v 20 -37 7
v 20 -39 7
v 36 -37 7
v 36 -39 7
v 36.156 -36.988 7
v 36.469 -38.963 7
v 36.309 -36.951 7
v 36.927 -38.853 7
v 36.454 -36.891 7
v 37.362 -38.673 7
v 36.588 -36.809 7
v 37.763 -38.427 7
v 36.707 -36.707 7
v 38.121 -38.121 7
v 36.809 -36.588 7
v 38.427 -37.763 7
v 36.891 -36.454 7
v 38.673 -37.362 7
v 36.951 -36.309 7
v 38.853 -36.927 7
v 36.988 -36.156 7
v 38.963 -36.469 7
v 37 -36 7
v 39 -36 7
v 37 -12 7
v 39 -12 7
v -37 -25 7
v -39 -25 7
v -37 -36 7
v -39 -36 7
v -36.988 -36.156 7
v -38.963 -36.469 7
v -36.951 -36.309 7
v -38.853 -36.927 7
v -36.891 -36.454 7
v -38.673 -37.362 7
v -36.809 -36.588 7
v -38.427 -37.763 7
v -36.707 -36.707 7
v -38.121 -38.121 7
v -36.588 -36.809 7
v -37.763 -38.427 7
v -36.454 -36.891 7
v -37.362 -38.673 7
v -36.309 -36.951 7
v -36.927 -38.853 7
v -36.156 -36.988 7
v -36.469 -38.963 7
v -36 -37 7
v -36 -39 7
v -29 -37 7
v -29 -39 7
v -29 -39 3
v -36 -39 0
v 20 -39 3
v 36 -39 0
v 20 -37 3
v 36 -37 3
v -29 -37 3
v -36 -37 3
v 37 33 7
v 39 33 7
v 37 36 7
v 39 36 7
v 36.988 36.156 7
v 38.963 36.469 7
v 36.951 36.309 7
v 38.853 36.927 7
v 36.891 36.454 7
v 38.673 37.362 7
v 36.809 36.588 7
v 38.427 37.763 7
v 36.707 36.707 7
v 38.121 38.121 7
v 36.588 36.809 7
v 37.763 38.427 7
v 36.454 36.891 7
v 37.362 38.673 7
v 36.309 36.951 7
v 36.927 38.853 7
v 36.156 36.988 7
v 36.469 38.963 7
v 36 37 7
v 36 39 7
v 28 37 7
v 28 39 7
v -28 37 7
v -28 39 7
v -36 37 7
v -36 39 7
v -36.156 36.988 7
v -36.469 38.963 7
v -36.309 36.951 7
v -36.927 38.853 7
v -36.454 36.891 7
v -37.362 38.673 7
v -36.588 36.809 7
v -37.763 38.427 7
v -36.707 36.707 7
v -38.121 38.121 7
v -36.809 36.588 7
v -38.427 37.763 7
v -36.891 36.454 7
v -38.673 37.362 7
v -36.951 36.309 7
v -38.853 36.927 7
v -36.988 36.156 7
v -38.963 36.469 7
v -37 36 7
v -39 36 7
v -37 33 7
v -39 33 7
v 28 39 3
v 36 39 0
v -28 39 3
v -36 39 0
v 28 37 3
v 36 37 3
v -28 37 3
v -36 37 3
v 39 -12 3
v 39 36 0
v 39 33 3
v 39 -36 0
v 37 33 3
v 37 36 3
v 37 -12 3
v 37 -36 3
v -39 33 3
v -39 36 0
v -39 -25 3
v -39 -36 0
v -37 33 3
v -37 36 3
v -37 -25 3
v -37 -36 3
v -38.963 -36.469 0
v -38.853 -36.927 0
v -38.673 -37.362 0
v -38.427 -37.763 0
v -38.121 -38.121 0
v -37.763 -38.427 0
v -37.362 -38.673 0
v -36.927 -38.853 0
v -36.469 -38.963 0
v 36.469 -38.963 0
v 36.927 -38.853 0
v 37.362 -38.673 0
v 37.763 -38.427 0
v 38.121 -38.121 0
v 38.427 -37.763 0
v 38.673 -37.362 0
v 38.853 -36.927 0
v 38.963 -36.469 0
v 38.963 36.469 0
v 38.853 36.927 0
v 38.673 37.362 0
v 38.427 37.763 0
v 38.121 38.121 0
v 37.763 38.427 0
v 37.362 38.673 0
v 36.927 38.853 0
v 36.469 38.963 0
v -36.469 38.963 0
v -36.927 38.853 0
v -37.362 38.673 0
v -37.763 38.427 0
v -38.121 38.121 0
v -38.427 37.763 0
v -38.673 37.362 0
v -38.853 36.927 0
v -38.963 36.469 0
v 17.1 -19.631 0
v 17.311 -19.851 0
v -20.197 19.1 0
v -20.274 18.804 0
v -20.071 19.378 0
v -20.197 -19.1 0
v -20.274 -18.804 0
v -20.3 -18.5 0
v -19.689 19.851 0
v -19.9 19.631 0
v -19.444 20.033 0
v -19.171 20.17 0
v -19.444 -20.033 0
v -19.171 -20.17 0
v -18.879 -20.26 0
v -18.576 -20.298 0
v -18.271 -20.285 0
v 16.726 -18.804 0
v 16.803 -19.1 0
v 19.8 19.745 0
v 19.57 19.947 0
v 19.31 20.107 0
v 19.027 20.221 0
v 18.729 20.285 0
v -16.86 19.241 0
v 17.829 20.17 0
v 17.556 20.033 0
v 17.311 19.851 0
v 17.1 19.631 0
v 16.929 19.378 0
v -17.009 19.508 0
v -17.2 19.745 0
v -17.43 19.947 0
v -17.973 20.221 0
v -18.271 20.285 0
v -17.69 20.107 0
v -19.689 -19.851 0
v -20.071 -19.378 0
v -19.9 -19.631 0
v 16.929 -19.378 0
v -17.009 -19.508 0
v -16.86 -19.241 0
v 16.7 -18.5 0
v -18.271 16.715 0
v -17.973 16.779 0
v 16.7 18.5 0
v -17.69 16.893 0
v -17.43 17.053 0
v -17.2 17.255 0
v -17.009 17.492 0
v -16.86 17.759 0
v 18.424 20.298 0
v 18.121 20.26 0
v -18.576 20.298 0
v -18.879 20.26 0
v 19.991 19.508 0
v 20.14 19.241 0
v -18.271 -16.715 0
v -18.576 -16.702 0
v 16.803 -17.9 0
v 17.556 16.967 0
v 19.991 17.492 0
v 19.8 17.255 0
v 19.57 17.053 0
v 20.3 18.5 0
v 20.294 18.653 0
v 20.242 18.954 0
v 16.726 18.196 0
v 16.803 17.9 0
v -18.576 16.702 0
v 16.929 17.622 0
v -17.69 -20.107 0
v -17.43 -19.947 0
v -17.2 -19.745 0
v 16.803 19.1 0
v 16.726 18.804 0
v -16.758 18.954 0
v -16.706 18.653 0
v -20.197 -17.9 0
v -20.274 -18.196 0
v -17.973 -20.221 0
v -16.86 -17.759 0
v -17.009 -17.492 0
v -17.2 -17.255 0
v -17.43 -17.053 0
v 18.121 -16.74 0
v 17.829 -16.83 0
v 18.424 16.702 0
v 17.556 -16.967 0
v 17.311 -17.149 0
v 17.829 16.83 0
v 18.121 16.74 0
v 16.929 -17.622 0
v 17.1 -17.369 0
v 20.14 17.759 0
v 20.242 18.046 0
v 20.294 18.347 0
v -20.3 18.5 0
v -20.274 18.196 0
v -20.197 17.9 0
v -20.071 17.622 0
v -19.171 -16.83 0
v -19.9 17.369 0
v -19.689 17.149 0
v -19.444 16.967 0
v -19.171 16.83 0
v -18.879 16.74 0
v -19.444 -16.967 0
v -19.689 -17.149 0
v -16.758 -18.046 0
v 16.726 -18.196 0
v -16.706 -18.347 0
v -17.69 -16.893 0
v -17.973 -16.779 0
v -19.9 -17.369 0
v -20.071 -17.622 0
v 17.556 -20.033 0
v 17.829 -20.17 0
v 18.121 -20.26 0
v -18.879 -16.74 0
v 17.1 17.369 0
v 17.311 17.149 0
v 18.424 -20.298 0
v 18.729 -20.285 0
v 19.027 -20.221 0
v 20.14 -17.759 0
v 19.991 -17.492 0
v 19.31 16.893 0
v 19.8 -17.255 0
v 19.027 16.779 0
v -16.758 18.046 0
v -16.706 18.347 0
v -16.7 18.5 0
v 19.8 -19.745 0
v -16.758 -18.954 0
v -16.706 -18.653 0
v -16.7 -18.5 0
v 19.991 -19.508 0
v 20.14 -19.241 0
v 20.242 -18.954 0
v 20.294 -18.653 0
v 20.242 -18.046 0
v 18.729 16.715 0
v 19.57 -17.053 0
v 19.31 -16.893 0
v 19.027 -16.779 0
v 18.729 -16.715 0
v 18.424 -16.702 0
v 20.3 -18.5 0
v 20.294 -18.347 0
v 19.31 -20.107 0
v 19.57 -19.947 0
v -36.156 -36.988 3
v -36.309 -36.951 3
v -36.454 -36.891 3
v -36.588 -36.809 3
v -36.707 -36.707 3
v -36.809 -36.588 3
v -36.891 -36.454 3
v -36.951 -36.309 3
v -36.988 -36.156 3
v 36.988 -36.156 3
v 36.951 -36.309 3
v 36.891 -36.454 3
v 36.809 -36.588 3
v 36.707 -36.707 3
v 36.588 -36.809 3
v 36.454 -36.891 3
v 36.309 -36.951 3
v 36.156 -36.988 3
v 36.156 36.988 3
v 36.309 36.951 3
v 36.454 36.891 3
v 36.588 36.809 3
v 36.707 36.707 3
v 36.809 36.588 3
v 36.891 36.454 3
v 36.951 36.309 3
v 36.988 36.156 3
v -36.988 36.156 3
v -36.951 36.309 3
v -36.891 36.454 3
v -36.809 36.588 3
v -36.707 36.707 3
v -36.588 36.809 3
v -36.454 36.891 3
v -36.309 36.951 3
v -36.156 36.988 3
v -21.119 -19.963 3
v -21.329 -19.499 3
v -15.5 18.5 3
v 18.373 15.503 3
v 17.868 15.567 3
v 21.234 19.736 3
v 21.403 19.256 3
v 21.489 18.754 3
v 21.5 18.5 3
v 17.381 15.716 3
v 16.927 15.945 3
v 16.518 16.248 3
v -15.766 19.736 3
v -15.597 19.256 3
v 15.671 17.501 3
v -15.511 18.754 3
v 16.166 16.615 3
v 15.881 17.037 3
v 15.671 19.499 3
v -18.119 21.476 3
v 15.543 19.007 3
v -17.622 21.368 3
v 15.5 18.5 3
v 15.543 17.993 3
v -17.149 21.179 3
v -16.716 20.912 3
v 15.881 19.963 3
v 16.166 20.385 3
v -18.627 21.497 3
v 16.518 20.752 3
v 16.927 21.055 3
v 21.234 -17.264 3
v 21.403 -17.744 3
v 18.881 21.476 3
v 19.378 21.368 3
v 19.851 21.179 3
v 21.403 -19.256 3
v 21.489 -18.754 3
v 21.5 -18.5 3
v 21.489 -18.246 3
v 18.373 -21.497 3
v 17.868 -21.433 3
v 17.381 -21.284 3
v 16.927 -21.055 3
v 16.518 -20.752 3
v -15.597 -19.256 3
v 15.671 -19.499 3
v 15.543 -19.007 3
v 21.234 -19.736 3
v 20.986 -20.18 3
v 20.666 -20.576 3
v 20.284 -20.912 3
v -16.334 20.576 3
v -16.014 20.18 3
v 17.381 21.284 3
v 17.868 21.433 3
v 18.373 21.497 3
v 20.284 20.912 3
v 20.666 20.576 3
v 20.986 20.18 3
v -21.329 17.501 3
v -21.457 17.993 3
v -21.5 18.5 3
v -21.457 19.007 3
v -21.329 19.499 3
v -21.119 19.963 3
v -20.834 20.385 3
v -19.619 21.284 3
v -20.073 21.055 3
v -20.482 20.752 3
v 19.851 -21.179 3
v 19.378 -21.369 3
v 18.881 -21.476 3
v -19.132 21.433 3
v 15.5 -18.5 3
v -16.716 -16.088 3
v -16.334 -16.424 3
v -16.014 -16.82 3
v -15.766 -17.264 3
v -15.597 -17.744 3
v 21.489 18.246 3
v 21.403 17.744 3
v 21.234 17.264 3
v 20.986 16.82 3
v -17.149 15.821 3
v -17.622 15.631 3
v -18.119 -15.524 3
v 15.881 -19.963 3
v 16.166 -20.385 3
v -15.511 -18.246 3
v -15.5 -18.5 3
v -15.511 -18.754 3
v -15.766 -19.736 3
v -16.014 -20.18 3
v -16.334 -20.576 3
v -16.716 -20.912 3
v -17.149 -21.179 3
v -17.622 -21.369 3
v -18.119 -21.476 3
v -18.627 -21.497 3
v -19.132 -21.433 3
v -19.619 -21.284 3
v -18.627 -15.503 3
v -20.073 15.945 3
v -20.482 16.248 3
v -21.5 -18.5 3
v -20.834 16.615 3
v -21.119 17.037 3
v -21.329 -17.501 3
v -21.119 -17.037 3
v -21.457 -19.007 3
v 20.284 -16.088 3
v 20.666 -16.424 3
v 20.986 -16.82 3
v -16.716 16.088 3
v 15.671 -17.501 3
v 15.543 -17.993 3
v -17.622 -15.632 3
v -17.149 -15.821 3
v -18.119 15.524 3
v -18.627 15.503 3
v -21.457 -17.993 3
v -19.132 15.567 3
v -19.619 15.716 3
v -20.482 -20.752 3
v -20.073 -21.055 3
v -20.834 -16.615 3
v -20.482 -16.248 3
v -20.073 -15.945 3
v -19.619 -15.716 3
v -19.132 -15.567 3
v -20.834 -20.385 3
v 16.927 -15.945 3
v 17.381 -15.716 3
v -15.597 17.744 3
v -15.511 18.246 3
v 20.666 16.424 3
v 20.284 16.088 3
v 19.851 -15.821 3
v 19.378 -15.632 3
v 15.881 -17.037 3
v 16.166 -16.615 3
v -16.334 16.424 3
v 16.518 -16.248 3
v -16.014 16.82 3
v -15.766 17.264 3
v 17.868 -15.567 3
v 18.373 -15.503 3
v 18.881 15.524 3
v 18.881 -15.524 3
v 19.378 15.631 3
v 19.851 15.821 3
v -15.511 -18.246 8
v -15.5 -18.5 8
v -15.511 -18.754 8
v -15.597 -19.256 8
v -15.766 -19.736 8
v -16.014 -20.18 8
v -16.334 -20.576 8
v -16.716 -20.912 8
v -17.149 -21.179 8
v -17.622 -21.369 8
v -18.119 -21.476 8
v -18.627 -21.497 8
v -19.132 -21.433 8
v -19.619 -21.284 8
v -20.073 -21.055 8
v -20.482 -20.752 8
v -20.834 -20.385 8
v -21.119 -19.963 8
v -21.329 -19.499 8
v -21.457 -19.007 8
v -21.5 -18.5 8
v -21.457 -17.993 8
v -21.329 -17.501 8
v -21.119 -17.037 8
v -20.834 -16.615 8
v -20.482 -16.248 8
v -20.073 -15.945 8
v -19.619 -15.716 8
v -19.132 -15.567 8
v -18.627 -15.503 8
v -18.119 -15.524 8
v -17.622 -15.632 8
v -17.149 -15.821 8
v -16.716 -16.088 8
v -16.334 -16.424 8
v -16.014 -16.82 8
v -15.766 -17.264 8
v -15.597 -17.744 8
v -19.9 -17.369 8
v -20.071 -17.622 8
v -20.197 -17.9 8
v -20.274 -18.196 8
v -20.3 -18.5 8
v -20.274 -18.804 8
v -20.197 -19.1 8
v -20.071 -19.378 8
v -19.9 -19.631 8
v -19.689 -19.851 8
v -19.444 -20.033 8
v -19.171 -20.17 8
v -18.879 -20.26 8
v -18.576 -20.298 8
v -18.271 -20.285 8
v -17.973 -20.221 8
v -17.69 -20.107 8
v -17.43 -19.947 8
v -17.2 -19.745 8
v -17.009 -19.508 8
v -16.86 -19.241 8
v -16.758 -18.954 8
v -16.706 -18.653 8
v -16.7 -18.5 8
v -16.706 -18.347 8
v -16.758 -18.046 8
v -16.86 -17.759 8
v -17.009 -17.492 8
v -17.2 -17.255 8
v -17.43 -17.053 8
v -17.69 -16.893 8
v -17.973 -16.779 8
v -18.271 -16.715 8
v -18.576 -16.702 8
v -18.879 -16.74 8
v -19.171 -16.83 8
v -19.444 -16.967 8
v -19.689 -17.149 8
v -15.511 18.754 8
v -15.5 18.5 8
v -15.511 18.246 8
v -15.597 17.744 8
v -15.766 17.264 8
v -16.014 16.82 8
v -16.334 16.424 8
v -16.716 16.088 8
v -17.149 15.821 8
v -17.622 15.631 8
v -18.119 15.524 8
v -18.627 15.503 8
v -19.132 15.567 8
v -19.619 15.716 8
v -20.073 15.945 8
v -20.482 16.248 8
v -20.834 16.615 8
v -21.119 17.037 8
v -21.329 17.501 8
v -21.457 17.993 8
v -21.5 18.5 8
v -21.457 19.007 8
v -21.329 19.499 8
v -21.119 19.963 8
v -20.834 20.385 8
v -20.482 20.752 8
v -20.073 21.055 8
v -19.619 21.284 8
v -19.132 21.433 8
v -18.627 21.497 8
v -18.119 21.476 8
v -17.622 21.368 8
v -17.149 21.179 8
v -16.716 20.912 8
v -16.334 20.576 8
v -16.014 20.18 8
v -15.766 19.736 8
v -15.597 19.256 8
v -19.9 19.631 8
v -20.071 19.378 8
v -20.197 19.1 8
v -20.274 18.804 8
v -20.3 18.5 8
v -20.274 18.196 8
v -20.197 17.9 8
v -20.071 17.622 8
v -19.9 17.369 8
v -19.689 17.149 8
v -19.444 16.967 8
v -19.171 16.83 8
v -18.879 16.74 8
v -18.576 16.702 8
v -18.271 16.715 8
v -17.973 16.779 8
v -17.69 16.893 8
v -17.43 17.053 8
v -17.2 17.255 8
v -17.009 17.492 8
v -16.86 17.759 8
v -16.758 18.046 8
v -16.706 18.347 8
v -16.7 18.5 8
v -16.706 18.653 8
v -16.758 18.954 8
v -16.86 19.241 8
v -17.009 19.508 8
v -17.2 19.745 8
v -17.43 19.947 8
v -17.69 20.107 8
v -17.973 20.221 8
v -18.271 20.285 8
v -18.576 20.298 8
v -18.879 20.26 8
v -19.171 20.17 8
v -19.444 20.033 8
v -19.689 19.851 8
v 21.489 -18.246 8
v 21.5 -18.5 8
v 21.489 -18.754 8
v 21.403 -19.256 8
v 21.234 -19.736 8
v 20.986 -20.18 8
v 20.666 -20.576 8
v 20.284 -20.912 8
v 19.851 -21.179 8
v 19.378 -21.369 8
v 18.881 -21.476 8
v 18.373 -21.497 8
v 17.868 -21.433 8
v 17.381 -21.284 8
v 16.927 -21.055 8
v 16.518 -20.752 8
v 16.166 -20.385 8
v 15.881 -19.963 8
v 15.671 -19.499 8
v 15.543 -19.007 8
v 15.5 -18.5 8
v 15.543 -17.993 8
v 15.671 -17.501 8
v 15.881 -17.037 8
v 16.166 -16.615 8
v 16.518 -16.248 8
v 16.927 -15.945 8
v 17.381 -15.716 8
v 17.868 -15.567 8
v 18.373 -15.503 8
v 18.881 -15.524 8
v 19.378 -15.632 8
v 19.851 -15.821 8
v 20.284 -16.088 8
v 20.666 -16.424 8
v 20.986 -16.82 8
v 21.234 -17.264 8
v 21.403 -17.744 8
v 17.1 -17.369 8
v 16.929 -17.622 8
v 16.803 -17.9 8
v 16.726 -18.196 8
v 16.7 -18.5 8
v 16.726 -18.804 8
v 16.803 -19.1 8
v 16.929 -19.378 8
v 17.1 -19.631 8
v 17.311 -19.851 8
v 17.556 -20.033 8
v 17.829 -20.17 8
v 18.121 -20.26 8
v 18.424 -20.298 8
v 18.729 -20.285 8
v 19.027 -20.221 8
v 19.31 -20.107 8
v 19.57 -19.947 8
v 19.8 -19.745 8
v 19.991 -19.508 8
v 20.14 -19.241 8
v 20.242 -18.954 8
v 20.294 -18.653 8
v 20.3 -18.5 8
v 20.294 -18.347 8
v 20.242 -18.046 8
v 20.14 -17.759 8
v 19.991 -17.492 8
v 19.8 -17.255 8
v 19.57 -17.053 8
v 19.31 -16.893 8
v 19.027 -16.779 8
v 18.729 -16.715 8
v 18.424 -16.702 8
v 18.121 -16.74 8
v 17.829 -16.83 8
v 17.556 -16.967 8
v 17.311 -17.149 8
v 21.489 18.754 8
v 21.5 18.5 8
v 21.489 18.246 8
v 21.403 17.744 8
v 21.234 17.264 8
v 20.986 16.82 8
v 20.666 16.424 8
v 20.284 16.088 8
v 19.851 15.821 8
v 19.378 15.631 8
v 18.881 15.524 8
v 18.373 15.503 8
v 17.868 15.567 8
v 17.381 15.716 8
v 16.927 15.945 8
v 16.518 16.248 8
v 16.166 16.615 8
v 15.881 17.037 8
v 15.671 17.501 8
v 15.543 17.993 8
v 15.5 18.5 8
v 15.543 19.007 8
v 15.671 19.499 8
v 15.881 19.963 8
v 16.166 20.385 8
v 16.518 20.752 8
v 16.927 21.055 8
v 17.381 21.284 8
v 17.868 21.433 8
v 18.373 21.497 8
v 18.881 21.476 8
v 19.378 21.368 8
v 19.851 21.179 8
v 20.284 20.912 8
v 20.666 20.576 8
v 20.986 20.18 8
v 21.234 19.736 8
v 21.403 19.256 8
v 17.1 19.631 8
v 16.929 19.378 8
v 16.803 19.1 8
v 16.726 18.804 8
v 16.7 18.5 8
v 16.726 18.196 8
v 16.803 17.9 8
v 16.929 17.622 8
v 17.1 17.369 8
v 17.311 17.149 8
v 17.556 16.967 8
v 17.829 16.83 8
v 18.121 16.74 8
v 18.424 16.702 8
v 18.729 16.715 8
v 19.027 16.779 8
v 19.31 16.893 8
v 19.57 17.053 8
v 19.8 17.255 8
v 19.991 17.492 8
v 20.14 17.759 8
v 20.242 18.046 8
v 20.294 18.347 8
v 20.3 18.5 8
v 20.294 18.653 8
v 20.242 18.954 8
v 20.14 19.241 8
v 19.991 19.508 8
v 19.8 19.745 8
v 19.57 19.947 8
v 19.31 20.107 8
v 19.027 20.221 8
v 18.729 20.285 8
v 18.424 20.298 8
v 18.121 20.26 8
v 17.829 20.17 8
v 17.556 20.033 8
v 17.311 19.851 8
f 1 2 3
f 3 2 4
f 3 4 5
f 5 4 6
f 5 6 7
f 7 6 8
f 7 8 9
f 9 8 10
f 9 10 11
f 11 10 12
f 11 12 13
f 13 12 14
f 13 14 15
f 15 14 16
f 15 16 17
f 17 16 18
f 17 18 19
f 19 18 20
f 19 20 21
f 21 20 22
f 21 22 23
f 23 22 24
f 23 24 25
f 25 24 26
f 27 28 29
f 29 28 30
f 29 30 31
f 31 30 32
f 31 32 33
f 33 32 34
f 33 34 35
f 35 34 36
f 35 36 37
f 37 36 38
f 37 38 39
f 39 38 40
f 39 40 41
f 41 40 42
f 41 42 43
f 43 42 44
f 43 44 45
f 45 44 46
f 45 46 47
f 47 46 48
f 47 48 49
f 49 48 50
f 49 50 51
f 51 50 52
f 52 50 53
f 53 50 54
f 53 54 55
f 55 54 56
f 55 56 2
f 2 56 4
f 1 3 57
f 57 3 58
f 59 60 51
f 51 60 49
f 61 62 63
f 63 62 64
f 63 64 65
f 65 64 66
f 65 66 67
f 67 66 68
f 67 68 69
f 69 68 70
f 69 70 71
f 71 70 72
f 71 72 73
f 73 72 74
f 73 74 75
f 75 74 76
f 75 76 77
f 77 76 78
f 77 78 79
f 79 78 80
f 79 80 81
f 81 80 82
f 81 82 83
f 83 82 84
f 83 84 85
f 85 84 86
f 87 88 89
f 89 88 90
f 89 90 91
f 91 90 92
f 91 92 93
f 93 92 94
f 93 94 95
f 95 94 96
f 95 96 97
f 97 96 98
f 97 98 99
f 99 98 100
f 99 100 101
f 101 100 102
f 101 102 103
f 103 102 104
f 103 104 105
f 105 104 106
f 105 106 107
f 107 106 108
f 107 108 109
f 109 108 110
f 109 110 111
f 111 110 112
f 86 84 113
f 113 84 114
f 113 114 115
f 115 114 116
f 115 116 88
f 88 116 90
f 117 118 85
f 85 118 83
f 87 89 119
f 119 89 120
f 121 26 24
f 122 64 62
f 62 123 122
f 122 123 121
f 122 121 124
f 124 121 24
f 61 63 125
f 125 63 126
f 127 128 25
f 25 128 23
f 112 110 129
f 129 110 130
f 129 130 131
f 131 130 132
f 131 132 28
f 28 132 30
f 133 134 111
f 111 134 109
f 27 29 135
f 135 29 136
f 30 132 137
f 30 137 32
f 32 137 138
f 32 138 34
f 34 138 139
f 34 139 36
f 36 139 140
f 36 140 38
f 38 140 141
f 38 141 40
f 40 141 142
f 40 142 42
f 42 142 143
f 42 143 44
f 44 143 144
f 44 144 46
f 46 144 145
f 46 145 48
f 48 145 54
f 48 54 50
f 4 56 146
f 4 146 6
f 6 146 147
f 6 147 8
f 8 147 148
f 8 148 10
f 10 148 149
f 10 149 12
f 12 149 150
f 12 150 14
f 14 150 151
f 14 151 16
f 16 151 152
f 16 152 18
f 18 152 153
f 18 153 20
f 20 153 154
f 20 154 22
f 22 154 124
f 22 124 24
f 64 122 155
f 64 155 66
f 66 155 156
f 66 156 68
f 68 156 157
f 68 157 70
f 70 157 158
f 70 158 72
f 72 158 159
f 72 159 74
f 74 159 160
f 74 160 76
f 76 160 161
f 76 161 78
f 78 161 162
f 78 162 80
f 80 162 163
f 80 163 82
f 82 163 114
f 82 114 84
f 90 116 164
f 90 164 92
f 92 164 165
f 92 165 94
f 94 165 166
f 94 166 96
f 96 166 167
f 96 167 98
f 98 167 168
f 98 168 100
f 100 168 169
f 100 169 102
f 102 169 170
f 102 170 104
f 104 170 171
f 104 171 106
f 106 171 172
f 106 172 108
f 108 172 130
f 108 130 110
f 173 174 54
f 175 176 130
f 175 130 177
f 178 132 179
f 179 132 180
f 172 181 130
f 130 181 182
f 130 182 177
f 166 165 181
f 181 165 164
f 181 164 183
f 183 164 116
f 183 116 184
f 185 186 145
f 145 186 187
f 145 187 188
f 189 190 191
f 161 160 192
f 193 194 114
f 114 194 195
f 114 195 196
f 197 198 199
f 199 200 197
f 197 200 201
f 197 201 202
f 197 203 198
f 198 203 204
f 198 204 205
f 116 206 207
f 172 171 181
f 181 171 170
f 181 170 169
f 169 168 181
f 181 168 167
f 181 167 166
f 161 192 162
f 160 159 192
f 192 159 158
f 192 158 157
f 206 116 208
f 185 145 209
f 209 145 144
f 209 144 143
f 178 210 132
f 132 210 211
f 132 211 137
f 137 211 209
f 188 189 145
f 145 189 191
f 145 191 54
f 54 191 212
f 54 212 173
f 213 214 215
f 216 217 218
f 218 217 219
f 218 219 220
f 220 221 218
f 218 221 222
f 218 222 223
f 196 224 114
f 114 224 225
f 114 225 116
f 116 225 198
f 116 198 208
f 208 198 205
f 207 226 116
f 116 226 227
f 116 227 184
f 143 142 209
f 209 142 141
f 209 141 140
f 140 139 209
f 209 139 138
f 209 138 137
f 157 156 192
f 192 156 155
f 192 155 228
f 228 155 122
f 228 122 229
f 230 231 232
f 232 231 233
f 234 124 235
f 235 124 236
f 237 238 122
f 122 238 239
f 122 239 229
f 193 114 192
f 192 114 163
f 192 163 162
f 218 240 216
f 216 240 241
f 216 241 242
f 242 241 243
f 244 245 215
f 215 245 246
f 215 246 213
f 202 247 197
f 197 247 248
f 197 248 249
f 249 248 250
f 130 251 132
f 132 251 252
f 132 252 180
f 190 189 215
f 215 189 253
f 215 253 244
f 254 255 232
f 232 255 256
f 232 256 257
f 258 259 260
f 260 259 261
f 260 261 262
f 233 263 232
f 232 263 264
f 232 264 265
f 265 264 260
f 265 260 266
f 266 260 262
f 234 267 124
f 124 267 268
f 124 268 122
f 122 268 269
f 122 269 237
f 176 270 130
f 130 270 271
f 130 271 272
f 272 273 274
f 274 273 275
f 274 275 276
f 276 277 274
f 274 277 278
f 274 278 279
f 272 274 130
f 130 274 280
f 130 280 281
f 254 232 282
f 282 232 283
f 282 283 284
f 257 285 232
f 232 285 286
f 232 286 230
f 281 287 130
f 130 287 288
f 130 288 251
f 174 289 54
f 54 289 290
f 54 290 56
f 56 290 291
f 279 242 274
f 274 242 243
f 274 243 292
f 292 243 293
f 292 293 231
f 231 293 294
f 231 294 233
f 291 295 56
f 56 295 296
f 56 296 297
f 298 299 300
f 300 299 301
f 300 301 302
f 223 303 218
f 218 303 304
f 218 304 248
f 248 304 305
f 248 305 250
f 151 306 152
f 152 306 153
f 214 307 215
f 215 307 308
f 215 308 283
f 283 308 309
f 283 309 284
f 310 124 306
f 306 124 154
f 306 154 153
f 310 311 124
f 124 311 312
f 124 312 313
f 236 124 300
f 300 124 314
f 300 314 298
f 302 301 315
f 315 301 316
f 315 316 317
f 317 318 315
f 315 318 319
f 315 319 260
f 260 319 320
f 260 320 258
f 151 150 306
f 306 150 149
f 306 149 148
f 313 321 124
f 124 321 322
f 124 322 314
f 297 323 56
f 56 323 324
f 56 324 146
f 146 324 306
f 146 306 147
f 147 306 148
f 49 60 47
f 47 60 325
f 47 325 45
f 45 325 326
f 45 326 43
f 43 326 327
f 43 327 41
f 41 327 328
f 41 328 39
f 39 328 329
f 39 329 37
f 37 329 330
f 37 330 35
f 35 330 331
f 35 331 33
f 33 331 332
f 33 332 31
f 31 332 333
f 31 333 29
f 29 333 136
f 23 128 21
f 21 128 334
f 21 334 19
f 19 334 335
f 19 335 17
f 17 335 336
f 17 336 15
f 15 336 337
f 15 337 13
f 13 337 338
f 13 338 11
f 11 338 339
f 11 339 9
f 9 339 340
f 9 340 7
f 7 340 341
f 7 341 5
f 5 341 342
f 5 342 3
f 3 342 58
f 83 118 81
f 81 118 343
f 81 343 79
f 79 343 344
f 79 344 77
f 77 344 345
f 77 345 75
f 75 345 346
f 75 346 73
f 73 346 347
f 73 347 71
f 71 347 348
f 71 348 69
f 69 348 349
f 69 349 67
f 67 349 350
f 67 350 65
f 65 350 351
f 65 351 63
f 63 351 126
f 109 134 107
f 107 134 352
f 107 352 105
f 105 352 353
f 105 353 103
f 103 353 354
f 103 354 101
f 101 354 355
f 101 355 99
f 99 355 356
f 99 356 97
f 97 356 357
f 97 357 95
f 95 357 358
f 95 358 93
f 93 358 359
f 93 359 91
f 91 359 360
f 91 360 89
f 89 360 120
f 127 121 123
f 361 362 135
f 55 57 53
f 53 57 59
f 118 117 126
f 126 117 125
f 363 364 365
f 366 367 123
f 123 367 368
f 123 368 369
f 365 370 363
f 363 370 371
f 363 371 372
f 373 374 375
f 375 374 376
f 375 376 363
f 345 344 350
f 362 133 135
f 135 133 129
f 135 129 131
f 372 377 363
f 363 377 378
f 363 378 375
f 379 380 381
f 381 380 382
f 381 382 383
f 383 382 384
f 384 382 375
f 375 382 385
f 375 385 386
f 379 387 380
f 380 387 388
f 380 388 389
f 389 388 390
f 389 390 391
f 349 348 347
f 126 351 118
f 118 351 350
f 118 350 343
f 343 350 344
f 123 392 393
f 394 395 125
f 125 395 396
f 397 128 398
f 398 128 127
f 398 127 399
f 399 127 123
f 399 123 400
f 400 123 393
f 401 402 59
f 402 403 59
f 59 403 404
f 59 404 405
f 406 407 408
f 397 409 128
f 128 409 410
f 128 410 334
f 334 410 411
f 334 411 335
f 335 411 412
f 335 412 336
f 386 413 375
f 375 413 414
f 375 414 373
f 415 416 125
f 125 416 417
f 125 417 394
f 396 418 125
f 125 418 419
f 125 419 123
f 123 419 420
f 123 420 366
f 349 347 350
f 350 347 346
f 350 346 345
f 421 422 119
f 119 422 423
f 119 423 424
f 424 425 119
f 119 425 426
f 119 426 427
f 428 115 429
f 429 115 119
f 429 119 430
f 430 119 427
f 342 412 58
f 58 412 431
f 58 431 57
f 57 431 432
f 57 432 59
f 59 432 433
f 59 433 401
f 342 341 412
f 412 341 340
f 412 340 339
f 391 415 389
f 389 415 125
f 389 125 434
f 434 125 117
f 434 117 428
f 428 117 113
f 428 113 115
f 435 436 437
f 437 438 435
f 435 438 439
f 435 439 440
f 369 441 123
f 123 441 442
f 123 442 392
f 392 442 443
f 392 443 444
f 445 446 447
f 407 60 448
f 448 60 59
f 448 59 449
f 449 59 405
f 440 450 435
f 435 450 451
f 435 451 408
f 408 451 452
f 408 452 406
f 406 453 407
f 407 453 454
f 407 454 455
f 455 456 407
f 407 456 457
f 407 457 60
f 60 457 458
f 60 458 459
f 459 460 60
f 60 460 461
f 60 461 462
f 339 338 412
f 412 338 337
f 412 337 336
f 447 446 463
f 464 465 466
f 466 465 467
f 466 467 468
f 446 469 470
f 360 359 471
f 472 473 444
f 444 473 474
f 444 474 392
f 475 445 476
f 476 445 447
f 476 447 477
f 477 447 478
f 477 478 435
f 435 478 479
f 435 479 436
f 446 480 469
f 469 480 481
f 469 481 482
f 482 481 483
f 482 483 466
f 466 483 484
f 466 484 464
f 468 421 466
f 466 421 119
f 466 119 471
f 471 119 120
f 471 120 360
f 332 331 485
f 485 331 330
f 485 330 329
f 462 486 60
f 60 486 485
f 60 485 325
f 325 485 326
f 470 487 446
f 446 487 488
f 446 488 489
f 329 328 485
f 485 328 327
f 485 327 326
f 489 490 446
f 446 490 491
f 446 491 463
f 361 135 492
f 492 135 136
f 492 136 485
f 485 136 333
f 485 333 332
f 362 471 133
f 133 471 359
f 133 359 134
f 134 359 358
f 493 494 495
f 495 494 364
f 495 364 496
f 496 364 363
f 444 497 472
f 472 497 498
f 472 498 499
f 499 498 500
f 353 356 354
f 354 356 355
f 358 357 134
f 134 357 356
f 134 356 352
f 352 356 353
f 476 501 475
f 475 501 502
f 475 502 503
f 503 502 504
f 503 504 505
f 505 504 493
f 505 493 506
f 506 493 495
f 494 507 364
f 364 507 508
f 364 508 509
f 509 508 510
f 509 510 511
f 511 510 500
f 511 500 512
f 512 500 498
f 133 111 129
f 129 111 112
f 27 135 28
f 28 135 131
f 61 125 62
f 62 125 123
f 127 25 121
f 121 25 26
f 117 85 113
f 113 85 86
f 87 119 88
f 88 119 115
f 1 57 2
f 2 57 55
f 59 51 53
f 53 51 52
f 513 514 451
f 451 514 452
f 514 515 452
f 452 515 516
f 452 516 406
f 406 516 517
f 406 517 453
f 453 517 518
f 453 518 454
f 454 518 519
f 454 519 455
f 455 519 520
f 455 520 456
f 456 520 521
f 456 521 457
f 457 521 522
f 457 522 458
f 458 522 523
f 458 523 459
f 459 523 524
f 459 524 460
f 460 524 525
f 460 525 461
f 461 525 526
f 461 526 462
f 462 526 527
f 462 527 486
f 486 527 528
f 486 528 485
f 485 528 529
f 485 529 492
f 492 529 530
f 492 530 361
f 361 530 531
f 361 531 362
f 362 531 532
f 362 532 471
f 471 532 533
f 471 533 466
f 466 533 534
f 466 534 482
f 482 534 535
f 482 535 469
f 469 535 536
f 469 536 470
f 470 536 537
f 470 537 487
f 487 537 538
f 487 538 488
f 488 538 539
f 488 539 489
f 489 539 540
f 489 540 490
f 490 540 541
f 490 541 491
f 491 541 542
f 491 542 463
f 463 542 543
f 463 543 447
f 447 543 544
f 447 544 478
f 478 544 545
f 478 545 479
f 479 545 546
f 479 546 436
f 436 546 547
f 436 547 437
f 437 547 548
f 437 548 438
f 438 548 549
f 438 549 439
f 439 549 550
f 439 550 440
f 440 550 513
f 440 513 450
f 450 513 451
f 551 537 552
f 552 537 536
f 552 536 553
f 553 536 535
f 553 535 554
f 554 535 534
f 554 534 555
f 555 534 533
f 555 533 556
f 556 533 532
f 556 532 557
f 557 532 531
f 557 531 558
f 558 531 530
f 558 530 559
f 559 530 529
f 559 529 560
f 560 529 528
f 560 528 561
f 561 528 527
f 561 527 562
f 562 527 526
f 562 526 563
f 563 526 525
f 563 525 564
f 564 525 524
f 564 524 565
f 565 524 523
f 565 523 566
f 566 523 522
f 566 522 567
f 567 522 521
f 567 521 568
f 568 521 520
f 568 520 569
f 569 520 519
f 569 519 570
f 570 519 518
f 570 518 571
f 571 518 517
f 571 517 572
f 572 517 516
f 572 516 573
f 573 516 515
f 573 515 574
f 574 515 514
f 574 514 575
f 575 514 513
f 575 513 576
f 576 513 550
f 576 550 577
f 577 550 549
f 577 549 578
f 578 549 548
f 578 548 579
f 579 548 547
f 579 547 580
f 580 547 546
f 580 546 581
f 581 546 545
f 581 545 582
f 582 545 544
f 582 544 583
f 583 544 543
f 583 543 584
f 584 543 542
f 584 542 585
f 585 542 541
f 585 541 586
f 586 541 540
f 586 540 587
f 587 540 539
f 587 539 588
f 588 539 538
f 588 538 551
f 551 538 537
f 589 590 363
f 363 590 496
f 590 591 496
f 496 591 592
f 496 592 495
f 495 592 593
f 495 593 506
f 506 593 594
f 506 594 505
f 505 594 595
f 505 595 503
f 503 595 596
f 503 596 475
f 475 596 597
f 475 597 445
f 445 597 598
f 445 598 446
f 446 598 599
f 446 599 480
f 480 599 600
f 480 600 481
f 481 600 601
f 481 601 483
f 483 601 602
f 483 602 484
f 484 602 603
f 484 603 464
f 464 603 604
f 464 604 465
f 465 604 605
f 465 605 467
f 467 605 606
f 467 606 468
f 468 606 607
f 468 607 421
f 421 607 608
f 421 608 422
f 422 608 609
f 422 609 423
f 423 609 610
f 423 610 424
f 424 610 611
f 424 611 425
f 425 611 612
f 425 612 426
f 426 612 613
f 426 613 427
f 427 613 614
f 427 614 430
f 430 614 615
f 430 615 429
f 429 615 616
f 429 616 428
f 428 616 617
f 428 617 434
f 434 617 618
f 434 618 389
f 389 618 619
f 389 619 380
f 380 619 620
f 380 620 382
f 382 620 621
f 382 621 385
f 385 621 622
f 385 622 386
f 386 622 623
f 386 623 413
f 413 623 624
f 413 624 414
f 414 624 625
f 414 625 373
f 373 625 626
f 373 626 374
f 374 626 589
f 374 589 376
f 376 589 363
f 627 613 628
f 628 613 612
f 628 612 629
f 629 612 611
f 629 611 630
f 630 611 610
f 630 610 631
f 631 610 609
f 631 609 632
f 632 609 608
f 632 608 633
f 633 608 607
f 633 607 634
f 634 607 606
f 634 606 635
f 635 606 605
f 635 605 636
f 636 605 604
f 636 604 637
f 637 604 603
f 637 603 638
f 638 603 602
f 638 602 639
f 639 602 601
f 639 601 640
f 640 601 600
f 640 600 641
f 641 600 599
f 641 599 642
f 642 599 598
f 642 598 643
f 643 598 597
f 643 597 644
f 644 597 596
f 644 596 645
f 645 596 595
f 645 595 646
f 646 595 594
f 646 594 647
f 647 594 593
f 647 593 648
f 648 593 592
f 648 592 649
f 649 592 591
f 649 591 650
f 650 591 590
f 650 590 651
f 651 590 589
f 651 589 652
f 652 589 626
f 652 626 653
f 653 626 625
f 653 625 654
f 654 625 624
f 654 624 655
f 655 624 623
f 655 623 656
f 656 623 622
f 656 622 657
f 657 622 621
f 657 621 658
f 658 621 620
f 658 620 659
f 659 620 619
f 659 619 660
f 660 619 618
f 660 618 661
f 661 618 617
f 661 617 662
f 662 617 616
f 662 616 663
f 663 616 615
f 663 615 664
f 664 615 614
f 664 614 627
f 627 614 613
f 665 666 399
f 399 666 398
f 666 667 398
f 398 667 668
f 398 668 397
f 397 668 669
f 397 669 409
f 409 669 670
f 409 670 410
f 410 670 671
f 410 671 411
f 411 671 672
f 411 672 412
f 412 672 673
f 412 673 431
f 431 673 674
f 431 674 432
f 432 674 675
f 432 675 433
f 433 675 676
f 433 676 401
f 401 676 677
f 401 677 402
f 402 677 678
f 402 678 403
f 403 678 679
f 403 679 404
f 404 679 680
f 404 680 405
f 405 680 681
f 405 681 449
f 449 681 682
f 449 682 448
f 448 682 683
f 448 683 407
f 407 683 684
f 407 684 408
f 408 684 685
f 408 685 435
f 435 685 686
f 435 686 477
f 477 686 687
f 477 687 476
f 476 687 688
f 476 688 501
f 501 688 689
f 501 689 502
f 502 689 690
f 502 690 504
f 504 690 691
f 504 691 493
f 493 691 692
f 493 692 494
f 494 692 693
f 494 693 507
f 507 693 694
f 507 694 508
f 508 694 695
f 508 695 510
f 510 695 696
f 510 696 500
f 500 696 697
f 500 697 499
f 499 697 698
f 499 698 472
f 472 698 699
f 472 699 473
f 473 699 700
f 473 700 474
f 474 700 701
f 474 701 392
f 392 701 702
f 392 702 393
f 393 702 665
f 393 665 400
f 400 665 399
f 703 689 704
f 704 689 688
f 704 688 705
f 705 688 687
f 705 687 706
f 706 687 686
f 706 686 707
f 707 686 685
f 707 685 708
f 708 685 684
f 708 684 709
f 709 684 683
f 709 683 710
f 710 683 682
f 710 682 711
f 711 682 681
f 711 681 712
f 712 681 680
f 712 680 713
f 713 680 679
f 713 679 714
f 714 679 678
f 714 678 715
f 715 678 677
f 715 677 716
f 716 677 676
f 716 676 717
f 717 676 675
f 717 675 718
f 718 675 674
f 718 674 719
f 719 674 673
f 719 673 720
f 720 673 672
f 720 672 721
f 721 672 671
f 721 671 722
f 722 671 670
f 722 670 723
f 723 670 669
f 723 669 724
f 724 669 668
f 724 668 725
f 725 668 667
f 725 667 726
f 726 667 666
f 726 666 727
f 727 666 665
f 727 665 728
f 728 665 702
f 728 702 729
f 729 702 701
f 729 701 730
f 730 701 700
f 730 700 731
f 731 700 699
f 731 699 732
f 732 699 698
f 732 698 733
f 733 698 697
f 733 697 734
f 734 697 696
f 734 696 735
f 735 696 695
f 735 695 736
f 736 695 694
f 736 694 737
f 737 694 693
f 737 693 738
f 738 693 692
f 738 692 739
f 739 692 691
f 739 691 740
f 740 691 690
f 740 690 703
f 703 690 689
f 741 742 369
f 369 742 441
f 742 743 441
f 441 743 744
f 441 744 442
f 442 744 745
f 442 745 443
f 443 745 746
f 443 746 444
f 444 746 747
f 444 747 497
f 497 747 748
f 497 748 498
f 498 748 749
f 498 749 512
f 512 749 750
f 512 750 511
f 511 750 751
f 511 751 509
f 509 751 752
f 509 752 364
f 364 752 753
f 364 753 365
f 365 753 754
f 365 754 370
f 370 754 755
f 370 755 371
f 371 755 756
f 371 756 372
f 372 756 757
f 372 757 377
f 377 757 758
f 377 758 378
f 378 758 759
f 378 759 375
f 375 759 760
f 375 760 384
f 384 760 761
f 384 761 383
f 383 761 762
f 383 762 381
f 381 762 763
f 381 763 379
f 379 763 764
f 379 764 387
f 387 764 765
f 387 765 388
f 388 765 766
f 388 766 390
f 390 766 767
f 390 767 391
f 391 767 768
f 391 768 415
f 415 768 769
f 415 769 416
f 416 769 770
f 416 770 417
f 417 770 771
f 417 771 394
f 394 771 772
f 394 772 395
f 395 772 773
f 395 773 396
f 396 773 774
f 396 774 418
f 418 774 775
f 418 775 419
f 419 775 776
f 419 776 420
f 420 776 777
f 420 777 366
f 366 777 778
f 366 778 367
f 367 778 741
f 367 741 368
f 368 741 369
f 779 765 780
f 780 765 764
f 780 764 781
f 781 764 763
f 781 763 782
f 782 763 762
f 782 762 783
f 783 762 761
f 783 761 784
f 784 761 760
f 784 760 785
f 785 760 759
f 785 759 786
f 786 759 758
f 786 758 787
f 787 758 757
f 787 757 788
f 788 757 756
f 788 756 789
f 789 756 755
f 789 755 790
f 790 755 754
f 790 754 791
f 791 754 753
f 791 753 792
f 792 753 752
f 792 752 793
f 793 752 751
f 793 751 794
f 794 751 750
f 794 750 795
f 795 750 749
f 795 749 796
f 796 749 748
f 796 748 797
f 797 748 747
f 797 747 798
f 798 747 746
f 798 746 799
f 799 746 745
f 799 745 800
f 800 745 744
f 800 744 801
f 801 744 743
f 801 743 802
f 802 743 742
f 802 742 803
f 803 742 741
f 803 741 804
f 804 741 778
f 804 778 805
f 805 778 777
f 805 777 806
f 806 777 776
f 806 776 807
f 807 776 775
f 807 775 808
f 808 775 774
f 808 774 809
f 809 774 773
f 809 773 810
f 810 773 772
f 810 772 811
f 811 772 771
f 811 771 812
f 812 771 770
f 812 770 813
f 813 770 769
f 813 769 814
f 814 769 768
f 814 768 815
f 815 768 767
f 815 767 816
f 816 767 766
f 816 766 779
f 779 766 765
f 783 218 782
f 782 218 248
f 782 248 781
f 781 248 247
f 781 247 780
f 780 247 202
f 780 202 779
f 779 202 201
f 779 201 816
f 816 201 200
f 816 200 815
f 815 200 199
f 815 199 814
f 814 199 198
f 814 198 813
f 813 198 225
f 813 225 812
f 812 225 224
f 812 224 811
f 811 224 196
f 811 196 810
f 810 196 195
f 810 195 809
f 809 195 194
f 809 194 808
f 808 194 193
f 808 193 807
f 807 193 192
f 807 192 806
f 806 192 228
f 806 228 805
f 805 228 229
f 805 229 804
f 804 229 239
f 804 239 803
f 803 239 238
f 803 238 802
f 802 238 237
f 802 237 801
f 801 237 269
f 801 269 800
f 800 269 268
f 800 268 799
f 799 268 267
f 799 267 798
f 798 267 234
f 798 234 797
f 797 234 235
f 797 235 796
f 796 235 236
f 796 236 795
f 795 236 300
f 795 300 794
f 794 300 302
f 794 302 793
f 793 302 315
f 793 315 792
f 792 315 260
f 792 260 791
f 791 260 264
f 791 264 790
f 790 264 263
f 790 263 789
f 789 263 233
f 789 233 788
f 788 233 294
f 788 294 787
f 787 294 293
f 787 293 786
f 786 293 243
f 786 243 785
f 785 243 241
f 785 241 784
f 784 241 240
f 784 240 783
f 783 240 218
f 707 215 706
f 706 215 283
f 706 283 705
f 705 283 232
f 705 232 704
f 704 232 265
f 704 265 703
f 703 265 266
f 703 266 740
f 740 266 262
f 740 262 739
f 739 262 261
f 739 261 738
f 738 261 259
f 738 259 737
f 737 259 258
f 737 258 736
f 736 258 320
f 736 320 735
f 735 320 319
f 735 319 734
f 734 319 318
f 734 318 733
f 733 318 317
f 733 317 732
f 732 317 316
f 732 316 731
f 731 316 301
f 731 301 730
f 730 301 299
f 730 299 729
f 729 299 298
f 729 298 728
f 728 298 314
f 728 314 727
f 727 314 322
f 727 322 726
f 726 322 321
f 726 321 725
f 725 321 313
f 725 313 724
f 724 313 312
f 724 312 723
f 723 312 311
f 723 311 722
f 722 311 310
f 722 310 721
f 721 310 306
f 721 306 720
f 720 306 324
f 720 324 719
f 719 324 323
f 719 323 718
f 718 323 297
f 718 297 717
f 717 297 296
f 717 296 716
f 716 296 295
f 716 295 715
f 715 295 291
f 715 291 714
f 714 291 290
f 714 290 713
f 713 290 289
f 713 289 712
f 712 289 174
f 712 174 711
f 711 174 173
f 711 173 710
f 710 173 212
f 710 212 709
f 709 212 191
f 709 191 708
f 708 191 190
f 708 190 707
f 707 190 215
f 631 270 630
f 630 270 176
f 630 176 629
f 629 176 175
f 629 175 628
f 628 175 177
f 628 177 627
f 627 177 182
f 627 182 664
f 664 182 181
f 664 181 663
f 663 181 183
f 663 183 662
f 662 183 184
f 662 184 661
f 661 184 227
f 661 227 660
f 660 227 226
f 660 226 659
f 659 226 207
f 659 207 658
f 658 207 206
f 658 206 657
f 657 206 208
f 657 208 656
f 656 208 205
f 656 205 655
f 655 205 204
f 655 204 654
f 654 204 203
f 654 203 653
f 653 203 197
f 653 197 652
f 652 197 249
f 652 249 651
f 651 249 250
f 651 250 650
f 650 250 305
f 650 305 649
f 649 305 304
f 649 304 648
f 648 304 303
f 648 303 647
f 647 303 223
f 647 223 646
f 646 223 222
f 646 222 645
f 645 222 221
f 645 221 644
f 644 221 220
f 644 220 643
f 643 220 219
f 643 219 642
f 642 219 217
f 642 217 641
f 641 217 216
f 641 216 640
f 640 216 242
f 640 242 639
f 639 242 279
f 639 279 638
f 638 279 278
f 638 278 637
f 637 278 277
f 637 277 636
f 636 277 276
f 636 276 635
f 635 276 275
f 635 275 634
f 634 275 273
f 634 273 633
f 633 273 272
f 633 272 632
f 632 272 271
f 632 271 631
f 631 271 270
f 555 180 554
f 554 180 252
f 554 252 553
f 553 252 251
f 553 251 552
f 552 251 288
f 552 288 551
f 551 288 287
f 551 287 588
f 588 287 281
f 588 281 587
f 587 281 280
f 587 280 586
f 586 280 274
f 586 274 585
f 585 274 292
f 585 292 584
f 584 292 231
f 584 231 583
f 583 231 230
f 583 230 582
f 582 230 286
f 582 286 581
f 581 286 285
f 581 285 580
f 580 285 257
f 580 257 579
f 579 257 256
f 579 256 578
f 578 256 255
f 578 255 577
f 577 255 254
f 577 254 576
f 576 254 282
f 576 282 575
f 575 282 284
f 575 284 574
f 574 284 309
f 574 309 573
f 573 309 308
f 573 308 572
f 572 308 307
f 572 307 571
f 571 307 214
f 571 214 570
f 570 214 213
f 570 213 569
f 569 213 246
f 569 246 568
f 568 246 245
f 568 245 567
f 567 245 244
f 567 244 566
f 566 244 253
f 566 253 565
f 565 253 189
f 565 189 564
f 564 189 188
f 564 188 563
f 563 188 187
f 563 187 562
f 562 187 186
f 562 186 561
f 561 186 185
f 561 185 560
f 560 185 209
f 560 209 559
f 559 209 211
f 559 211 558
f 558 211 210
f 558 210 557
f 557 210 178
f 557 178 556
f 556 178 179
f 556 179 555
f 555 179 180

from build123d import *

# Parameters (mm, degrees)
EXTRUDE_7_DEPTH       = 7
CUT_EXTRUDE_START     = 3
CUT_EXTRUDE_3_2_DEPTH = 4
M3_M4_5V_START        = 3
SKETCH_3_W            = 6
SKETCH_3_H            = 58
M3_M4_5V_DEPTH        = 4
M2_M1_START           = 3
SKETCH_4_W            = 6
SKETCH_4_H            = 45
M2_M1_DEPTH           = 4
SKETCH_5_W            = 56
SKETCH_5_H            = 6
CUT_EXTRUDE_M3_DEPTH  = 4
DC_START              = 3
SKETCH_6_W            = 49
SKETCH_6_H            = 6
DC_DEPTH              = 4
EXTRUDE_START         = 3
SKETCH_7_R            = 3
EXTRUDE_5_DEPTH       = 5
SKETCH_8_R            = 1.8
PCB_0_3_DEPTH         = 8


with BuildPart() as part:
    # 草图1 → 底托基础_总边高7 (new body)
    with BuildSketch(Plane.XY):
        with BuildLine():
            Line((-36, -39), (36, -39))
            ThreePointArc((36, -39), (38.121320344, -38.121320344), (39, -36))
            Line((39, -36), (39, 36))
            ThreePointArc((39, 36), (38.121320344, 38.121320344), (36, 39))
            Line((36, 39), (-36, 39))
            ThreePointArc((-36, 39), (-38.121320344, 38.121320344), (-39, 36))
            Line((-39, 36), (-39, -36))
            ThreePointArc((-39, -36), (-38.121320344, -38.121320344), (-36, -39))
        make_face()
    extrude(amount=EXTRUDE_7_DEPTH)

    # 草图2 → 底腔_实体绝缘底厚3_侧壁2 (cut)
    with BuildSketch(Plane.XY.offset(CUT_EXTRUDE_START)):
        with BuildLine():
            Line((-36, -37), (36, -37))
            ThreePointArc((36, -37), (36.707106781, -36.707106781), (37, -36))
            Line((37, -36), (37, 36))
            ThreePointArc((37, 36), (36.707106781, 36.707106781), (36, 37))
            Line((36, 37), (-36, 37))
            ThreePointArc((-36, 37), (-36.707106781, 36.707106781), (-37, 36))
            Line((-37, 36), (-37, -36))
            ThreePointArc((-37, -36), (-36.707106781, -36.707106781), (-36, -37))
        make_face()
    extrude(amount=CUT_EXTRUDE_3_2_DEPTH, mode=Mode.SUBTRACT)

    # 草图3 → 左侧M3_M4编码器及5V接口开口_不切穿绝缘底板 (cut)
    with BuildSketch(Plane.XY.offset(M3_M4_5V_START)):
        with Locations((-39, 4)):
            Rectangle(SKETCH_3_W, SKETCH_3_H)
    extrude(amount=M3_M4_5V_DEPTH, mode=Mode.SUBTRACT)

    # 草图4 → 右侧M2_M1及电机接口开口_不切穿绝缘底板 (cut)
    with BuildSketch(Plane.XY.offset(M2_M1_START)):
        with Locations((39, 10.5)):
            Rectangle(SKETCH_4_W, SKETCH_4_H)
    extrude(amount=M2_M1_DEPTH, mode=Mode.SUBTRACT)

    # 草图5 → 上侧控制与编码器及M3接口开口_不切穿绝缘底板 (cut)
    with BuildSketch(Plane.XY.offset(CUT_EXTRUDE_START)):
        with Locations((0, 39)):
            Rectangle(SKETCH_5_W, SKETCH_5_H)
    extrude(amount=CUT_EXTRUDE_M3_DEPTH, mode=Mode.SUBTRACT)

    # 草图6 → 下侧凤凰端子_DC_电源开关共用开口_不切穿绝缘底板 (cut)
    with BuildSketch(Plane.XY.offset(DC_START)):
        with Locations((-4.5, -39)):
            Rectangle(SKETCH_6_W, SKETCH_6_H)
    extrude(amount=DC_DEPTH, mode=Mode.SUBTRACT)

    # 草图7 → 四根绝缘支柱_板背净距5 (add)
    with BuildSketch(Plane.XY.offset(EXTRUDE_START)):
        with Locations((-18.5, -18.5)):
            Circle(SKETCH_7_R)
        with Locations((-18.5, 18.5)):
            Circle(SKETCH_7_R)
        with Locations((18.5, -18.5)):
            Circle(SKETCH_7_R)
        with Locations((18.5, 18.5)):
            Circle(SKETCH_7_R)
    extrude(amount=EXTRUDE_5_DEPTH)

    # 草图8 → PCB与底部对齐通孔_单边0.3 (cut)
    with BuildSketch(Plane.XY):
        with Locations((-18.5, -18.5)):
            Circle(SKETCH_8_R)
        with Locations((-18.5, 18.5)):
            Circle(SKETCH_8_R)
        with Locations((18.5, -18.5)):
            Circle(SKETCH_8_R)
        with Locations((18.5, 18.5)):
            Circle(SKETCH_8_R)
    extrude(amount=PCB_0_3_DEPTH, mode=Mode.SUBTRACT)


solid = part.part
